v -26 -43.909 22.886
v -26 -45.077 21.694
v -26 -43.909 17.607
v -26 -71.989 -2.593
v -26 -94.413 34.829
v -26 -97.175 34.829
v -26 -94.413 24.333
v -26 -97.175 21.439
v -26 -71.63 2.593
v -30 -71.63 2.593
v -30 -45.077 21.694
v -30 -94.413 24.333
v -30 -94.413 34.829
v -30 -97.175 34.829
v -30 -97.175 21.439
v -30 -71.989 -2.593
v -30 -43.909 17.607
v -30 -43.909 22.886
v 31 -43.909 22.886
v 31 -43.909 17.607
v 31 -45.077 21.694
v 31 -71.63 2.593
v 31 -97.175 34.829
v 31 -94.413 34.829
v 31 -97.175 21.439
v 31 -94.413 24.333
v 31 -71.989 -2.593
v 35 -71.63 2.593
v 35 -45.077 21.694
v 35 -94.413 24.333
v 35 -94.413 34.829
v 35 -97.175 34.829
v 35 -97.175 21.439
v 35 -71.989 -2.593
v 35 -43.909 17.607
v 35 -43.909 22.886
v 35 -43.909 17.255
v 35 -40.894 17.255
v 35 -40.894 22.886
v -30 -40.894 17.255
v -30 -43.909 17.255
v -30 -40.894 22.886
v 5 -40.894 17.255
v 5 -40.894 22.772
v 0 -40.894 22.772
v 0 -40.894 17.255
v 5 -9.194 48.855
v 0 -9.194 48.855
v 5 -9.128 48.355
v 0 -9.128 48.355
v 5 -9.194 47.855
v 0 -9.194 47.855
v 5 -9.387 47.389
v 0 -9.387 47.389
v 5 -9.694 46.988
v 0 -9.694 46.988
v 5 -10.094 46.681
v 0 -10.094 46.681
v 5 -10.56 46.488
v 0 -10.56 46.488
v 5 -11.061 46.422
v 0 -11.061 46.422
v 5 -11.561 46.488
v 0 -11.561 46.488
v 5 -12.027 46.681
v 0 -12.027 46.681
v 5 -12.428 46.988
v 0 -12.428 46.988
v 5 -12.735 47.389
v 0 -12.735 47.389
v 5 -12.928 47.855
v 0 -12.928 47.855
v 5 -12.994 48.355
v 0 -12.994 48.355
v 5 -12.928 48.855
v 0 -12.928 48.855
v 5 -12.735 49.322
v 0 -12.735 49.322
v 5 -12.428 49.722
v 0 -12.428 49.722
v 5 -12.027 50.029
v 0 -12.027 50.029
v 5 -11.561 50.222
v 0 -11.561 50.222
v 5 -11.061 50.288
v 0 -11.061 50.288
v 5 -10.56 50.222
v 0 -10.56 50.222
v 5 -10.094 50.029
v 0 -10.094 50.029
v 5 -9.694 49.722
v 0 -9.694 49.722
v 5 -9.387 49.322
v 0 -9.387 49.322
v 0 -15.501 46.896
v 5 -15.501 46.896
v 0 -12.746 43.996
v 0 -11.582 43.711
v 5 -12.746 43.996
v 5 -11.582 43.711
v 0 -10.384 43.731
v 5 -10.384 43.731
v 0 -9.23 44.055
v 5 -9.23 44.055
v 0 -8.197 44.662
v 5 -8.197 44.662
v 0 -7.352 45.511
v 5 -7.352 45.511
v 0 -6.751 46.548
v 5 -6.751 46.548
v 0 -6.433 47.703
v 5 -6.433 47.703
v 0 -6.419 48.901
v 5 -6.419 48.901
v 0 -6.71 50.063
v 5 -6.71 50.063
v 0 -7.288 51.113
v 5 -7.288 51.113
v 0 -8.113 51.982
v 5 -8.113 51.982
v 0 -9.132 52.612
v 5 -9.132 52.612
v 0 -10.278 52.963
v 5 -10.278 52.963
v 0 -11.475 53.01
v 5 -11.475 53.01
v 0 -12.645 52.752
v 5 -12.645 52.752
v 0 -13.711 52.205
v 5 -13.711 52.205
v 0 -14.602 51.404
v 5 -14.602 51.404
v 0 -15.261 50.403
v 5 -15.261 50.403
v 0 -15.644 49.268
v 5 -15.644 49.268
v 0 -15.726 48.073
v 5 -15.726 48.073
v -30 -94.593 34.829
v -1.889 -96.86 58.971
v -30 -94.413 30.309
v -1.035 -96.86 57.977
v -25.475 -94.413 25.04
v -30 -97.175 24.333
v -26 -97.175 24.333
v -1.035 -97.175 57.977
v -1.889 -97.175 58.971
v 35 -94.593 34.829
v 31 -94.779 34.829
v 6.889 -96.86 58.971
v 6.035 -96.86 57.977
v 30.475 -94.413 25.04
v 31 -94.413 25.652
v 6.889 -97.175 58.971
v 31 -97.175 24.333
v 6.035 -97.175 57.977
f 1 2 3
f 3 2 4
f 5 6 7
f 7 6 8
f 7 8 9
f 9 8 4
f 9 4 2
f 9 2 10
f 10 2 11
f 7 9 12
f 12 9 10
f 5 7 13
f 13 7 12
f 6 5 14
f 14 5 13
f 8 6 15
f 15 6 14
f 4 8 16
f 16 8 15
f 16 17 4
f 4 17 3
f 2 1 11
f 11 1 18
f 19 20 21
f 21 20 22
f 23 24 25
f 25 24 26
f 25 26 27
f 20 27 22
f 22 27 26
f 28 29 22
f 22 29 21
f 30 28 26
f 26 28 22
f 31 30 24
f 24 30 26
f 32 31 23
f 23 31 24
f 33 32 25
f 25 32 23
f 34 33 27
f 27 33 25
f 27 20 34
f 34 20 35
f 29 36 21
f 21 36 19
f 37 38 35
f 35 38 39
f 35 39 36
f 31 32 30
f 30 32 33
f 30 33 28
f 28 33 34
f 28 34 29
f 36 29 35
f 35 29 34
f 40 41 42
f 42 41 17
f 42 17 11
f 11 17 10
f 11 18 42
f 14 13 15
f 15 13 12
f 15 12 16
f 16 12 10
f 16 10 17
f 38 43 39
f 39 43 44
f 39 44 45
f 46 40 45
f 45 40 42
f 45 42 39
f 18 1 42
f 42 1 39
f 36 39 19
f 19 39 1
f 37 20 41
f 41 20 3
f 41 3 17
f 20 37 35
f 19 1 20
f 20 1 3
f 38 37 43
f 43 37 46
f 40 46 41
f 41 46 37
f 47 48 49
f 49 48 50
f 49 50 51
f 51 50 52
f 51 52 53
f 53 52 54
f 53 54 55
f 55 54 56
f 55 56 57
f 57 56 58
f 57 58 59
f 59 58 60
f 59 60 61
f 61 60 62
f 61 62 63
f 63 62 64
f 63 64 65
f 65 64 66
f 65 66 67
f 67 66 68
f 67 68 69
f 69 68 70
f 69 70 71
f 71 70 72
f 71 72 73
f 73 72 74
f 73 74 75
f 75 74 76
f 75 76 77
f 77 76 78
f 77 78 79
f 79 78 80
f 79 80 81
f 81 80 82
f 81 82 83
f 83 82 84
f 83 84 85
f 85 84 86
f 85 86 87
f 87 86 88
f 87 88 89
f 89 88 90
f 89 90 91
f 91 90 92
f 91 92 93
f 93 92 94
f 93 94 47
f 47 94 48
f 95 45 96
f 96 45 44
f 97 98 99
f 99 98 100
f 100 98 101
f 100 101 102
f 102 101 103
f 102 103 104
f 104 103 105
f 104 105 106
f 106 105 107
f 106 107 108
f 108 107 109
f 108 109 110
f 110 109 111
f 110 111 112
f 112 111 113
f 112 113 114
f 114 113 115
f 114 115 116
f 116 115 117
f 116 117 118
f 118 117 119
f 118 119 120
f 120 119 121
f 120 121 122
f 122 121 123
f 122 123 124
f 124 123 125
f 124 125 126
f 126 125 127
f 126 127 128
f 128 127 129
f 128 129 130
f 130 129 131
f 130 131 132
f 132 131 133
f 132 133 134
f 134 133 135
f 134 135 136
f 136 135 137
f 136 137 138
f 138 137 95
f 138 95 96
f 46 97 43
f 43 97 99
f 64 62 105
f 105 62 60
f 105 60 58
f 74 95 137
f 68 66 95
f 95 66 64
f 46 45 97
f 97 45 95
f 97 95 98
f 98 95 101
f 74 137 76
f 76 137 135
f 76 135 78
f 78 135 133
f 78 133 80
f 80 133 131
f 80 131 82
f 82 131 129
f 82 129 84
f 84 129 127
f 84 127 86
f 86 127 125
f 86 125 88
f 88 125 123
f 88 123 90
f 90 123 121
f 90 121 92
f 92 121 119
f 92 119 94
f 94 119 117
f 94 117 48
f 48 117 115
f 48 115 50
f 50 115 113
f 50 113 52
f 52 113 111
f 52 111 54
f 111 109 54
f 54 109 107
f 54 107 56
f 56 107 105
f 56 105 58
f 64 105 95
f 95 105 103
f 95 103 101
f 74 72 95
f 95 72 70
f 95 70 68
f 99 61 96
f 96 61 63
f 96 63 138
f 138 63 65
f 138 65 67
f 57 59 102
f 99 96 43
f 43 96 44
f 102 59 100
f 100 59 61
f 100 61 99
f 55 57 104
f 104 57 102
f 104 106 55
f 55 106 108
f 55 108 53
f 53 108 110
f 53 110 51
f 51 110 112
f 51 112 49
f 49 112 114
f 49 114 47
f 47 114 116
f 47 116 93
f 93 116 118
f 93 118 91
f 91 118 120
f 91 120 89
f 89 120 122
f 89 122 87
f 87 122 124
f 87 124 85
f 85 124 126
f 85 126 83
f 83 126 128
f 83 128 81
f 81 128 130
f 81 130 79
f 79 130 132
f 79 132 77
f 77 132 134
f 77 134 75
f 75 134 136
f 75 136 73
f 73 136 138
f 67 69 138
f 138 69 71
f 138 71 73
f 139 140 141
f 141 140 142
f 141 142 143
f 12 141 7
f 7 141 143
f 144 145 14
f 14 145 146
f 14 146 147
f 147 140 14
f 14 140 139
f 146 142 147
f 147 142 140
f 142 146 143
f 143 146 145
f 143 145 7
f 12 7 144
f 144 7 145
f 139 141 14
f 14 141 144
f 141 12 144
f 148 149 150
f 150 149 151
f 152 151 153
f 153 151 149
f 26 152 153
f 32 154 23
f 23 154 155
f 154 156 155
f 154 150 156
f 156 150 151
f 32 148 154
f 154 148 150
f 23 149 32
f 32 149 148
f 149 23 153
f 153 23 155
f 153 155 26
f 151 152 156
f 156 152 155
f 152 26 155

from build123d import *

# Parameters (mm, degrees)
SKETCH1_R                = 1.933011648
BOSS_EXTRUDE2_DEPTH      = 5
BOSS_EXTRUDE3_DEPTH      = 30
BOSS_EXTRUDE3_DEPTH_BACK = 35
SKETCH2_W                = 5.631130668
SKETCH2_H                = 3.014930961
BOSS_EXTRUDE4_DEPTH      = 4
LPATTERN1_COUNT          = 2
LPATTERN1_PITCH          = 61
BOSS_EXTRUDE7_START      = -2.761388983
BOSS_EXTRUDE7_DEPTH      = 2.761388983
CHAMFER4_SIZE            = 2.446504806
CHAMFER4_SIZE_2          = 40
CHAMFER5_SIZE            = 2.446504806
CHAMFER5_SIZE_2          = 40


# Read off the part's stored shape, not the designer's step: Boss-Extrude7
with BuildPart() as part:
    # Sketch1 → Boss-Extrude2 (new body)
    with BuildSketch(Plane(origin=(0, 0, 0), x_dir=(0, 0, -1), z_dir=(1, 0, 0))):
        with BuildLine():
            Line((-46.895851091, -15.500543616), (-20.154946043, -43.648864718))
            Line((-20.154946043, -43.648864718), (-17.254948309, -40.893866871))
            Line((-17.254948309, -40.893866871), (-43.995853357, -12.745545768))
            ThreePointArc((-43.995853357, -12.745545768), (-51.573956687, -7.672408414), (-46.895851091, -15.500543616))
        make_face()
        with Locations((-48.355084699, -11.060694718)):
            Circle(SKETCH1_R, mode=Mode.SUBTRACT)
    extrude(amount=BOSS_EXTRUDE2_DEPTH)

    # Sketch2 → Boss-Extrude3 (add, two sides: drawn at the far end of the back side and taken through both)
    with BuildSketch(Plane(origin=(5, 0, 0), x_dir=(0, 0, -1), z_dir=(1, 0, 0)).offset(-BOSS_EXTRUDE3_DEPTH_BACK)):
        with Locations((-20.070513643, -42.401332352)):
            Rectangle(SKETCH2_W, SKETCH2_H)
    extrude(amount=BOSS_EXTRUDE3_DEPTH + BOSS_EXTRUDE3_DEPTH_BACK)

    # Sketch3 → Boss-Extrude4 (add)
    with BuildSketch(Plane(origin=(35, 0, 0), x_dir=(0, 0, -1), z_dir=(1, 0, 0))):
        Polygon((-21.694078936, -45.076717239), (-2.592969181, -71.629832685), (-24.333035342, -94.41324153), (-34.828765043, -94.41324153), (-34.828765043, -97.174630514), (-21.439122613, -97.174630514), (2.592969181, -71.989197834), (-18.446948351, -42.740878425), (-22.886078977, -43.908797832), align=None)
    boss_extrude4 = extrude(amount=-BOSS_EXTRUDE4_DEPTH)

    # LPattern1: Boss-Extrude4 ×2
    with Locations(*[(-i * LPATTERN1_PITCH, 0, 0) for i in range(1, LPATTERN1_COUNT)]):
        add(boss_extrude4)


with BuildPart() as body_2:
    # Boss-Extrude7 outline → Boss-Extrude7 (new body)
    with BuildSketch(Plane(origin=(0, -94.41324153, 0), x_dir=(1, 0, 0), z_dir=(0, 1, 0)).offset(BOSS_EXTRUDE7_START)):
        Polygon((31, -34.828765043), (31, -24.333035342), (6.034622548, -57.97687078), (6.8885851, -58.971222561), (35, -34.828765043), align=None)
        Polygon((-26, -24.333035342), (-30, -24.333035342), (-30, -34.828765043), (-1.8885851, -58.971222561), (-1.034622548, -57.97687078), align=None)
    extrude(amount=BOSS_EXTRUDE7_DEPTH)

    # Chamfer4
    # the kernel refuses this chamfer: 40, 2.446504806 mm, written as the material it takes off along each edge
    with BuildSketch(Plane(origin=(-69.64215859, -94.41324153, 137.86330783), x_dir=(0.40332576937215514, -0.8469640789593069, 0.346381542107792), z_dir=(0.6515216112589131, 0, -0.7586300745835153))) as chamfer4_piece_1:
        Polygon((CHAMFER4_SIZE * 0.846964078966, CHAMFER4_SIZE * 0.531650118929), (-CHAMFER4_SIZE_2 * 0.531650118925, CHAMFER4_SIZE_2 * 0.846964078959), (0, 0), align=None)
    extrude(amount=209.296372024, mode=Mode.SUBTRACT)

    # Chamfer5
    # the kernel refuses this chamfer: 40, 2.446504806 mm, written as the material it takes off along each edge
    with BuildSketch(Plane(origin=(-61.718950942, -94.41324153, -20.915214489), x_dir=(-0.4033257693721534, -0.8469640789593084, 0.34638154210779065), z_dir=(0.6515216112589132, 0, 0.7586300745835151))) as chamfer5_piece_1:
        Polygon((CHAMFER5_SIZE * 0.846964078966, CHAMFER5_SIZE * 0.531650118929), (-CHAMFER5_SIZE_2 * 0.531650118925, CHAMFER5_SIZE_2 * 0.846964078959), (0, 0), align=None)
    extrude(amount=209.296372024, mode=Mode.SUBTRACT)


solid = Compound([part.part, body_2.part])
